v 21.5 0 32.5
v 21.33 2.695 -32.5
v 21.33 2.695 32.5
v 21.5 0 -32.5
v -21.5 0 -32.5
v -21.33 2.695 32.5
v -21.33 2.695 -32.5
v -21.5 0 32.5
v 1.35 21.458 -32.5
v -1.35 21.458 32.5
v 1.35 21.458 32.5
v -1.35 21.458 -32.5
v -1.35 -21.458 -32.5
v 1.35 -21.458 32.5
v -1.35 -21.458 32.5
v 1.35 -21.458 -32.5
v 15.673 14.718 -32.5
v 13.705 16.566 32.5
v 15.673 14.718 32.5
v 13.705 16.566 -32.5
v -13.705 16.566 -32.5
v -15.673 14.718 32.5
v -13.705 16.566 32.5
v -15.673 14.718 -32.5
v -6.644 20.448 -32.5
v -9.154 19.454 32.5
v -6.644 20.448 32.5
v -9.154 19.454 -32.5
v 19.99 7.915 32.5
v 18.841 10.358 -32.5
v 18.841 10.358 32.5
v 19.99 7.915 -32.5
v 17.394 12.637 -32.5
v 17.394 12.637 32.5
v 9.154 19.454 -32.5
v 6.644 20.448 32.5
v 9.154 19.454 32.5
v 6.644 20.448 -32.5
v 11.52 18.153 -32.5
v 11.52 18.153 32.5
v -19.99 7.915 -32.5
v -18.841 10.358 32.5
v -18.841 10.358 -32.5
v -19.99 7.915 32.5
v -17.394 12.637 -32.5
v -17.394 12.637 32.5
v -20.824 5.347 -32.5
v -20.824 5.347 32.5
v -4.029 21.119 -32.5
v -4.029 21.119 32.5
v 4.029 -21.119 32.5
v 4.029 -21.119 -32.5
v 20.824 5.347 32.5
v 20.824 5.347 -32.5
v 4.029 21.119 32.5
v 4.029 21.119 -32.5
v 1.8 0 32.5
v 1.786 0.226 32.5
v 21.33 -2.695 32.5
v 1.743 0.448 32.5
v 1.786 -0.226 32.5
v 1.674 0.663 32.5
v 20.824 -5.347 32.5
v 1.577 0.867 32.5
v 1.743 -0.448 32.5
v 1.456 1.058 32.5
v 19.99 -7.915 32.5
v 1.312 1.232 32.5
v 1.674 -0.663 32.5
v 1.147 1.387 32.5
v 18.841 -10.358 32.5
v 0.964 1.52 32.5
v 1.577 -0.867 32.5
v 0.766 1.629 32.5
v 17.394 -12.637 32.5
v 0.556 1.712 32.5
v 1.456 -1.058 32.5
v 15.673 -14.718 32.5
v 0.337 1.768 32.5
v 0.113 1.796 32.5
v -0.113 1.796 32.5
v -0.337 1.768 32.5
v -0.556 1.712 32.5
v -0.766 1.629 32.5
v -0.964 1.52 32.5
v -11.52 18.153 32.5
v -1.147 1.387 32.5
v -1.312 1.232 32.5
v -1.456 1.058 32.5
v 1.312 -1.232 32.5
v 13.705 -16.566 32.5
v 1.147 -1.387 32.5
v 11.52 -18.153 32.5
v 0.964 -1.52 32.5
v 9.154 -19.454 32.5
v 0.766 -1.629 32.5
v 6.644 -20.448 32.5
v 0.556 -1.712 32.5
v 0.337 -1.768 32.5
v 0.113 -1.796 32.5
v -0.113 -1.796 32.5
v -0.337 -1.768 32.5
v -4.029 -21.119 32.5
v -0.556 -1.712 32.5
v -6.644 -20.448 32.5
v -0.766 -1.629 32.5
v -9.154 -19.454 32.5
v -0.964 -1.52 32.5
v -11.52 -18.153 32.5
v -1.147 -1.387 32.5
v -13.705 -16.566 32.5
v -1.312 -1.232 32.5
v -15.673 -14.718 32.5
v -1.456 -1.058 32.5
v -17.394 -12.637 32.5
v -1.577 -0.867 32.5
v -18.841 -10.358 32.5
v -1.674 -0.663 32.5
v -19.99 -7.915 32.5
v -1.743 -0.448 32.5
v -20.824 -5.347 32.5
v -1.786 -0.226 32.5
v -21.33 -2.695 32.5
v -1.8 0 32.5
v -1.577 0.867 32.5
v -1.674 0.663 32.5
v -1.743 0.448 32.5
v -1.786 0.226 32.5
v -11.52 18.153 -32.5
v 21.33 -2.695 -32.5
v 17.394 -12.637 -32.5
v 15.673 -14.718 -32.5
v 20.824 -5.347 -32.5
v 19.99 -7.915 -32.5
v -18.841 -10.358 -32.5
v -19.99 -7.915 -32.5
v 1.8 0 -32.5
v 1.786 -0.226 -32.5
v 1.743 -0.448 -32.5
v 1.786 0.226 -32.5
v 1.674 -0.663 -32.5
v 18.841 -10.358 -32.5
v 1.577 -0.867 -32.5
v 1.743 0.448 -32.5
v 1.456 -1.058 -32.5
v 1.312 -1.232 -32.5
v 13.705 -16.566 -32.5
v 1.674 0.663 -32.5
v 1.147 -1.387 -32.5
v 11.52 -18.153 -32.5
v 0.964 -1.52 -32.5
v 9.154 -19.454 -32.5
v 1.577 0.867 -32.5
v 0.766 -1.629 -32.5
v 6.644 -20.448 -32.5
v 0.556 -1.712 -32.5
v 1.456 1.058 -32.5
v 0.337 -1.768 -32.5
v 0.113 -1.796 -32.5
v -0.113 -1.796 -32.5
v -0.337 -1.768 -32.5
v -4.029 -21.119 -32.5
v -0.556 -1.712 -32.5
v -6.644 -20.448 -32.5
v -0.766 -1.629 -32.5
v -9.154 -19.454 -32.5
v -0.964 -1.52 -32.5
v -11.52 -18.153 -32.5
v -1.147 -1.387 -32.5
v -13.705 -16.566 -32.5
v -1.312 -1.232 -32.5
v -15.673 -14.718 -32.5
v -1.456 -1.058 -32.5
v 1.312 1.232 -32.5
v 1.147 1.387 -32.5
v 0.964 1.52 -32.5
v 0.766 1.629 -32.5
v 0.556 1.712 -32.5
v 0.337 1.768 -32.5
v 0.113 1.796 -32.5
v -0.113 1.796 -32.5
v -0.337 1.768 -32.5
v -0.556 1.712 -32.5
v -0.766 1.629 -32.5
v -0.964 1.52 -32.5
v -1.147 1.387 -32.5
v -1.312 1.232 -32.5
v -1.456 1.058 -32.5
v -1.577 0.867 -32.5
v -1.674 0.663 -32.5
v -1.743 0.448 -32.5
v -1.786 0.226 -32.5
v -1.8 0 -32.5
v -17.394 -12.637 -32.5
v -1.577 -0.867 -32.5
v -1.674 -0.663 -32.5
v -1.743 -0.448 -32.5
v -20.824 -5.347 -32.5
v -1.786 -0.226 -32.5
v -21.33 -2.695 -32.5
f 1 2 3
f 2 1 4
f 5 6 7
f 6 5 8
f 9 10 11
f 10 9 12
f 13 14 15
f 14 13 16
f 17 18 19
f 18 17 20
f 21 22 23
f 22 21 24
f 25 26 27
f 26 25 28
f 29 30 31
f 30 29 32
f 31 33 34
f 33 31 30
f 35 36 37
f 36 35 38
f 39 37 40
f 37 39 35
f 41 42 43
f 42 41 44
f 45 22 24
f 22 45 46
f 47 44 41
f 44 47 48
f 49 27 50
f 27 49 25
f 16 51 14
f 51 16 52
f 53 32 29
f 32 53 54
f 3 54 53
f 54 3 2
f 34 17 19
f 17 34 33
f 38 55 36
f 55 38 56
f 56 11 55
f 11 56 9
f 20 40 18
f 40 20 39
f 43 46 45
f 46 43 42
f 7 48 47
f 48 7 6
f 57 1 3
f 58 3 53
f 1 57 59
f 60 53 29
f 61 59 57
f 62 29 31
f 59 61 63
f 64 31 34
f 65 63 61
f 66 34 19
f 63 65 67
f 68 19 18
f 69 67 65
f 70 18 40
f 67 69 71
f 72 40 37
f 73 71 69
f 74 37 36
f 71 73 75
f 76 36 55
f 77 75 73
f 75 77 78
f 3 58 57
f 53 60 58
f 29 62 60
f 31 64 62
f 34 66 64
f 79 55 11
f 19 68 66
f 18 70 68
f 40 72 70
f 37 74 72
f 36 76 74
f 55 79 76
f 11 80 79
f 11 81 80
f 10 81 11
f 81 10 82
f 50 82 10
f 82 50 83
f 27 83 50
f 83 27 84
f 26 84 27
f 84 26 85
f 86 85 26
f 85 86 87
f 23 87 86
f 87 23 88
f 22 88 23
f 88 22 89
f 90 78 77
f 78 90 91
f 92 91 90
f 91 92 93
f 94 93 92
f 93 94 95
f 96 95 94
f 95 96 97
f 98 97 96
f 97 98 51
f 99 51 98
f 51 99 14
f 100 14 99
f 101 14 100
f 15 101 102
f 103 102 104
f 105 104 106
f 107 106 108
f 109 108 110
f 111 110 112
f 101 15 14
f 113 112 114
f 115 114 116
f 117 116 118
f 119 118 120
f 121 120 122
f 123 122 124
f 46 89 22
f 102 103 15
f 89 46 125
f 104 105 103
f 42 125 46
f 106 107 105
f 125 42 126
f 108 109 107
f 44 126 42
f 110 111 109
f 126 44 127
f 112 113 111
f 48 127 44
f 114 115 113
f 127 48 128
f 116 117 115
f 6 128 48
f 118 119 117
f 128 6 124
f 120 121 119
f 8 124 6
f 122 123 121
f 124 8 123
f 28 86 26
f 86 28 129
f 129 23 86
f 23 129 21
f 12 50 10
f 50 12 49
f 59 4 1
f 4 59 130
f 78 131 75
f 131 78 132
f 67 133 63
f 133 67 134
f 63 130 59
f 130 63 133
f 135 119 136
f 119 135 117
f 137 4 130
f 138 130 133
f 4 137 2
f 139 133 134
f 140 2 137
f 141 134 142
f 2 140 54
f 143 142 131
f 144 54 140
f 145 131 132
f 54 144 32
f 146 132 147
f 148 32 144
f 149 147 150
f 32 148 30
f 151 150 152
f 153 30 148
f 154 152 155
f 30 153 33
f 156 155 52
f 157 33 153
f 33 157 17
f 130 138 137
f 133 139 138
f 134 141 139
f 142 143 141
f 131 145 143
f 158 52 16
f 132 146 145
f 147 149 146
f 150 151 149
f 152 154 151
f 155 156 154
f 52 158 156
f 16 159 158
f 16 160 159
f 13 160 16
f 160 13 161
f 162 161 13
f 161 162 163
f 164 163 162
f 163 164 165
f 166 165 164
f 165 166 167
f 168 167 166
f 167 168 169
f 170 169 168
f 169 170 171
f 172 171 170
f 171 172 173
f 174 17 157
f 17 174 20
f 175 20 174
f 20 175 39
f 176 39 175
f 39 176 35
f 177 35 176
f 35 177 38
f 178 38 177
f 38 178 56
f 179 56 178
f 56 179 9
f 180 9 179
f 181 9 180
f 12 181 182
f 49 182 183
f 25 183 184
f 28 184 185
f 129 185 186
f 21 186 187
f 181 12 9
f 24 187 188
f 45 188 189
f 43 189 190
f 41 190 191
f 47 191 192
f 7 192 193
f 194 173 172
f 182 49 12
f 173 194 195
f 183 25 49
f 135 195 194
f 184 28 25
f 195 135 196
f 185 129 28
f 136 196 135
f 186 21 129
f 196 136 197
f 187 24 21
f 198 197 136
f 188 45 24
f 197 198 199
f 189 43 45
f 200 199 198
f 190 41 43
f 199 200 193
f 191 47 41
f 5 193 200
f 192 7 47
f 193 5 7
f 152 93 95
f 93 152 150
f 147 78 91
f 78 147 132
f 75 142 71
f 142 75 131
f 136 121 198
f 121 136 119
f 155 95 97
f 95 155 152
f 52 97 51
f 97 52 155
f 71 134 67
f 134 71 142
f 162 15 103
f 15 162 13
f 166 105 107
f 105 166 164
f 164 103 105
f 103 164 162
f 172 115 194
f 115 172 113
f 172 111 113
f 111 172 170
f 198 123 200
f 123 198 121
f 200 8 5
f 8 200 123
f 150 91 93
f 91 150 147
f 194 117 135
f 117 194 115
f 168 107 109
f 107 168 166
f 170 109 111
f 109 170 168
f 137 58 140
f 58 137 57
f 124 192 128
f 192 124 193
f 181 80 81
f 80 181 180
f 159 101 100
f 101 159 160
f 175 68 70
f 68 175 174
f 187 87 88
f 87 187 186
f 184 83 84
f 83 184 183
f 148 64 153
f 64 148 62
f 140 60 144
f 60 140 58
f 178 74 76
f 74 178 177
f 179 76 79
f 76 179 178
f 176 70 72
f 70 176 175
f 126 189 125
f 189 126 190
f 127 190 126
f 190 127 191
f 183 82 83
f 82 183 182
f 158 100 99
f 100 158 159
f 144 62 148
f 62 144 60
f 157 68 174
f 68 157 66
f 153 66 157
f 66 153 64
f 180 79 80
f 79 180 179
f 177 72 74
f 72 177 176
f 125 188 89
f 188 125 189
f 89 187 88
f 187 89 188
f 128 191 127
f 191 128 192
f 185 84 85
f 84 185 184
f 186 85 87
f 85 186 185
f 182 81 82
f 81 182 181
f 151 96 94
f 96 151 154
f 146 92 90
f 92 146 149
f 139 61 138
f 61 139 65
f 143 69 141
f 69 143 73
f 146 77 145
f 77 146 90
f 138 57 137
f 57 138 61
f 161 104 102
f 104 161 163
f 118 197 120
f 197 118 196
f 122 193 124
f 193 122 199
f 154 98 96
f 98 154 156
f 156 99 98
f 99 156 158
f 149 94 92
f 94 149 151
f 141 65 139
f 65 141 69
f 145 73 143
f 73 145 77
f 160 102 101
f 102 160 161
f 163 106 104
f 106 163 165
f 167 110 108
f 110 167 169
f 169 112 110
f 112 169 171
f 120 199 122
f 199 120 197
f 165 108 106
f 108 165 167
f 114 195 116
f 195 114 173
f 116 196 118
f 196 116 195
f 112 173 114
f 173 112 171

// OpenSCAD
$fn = 50;


difference() {
	union() {
		translate(v = [0, 0, -32.5000000000]) {
			cylinder(h = 65, r = 21.5000000000);
		}
	}
	union() {
		translate(v = [0, 0, -100.0000000000]) {
			cylinder(h = 200, r = 1.8000000000);
		}
	}
}
